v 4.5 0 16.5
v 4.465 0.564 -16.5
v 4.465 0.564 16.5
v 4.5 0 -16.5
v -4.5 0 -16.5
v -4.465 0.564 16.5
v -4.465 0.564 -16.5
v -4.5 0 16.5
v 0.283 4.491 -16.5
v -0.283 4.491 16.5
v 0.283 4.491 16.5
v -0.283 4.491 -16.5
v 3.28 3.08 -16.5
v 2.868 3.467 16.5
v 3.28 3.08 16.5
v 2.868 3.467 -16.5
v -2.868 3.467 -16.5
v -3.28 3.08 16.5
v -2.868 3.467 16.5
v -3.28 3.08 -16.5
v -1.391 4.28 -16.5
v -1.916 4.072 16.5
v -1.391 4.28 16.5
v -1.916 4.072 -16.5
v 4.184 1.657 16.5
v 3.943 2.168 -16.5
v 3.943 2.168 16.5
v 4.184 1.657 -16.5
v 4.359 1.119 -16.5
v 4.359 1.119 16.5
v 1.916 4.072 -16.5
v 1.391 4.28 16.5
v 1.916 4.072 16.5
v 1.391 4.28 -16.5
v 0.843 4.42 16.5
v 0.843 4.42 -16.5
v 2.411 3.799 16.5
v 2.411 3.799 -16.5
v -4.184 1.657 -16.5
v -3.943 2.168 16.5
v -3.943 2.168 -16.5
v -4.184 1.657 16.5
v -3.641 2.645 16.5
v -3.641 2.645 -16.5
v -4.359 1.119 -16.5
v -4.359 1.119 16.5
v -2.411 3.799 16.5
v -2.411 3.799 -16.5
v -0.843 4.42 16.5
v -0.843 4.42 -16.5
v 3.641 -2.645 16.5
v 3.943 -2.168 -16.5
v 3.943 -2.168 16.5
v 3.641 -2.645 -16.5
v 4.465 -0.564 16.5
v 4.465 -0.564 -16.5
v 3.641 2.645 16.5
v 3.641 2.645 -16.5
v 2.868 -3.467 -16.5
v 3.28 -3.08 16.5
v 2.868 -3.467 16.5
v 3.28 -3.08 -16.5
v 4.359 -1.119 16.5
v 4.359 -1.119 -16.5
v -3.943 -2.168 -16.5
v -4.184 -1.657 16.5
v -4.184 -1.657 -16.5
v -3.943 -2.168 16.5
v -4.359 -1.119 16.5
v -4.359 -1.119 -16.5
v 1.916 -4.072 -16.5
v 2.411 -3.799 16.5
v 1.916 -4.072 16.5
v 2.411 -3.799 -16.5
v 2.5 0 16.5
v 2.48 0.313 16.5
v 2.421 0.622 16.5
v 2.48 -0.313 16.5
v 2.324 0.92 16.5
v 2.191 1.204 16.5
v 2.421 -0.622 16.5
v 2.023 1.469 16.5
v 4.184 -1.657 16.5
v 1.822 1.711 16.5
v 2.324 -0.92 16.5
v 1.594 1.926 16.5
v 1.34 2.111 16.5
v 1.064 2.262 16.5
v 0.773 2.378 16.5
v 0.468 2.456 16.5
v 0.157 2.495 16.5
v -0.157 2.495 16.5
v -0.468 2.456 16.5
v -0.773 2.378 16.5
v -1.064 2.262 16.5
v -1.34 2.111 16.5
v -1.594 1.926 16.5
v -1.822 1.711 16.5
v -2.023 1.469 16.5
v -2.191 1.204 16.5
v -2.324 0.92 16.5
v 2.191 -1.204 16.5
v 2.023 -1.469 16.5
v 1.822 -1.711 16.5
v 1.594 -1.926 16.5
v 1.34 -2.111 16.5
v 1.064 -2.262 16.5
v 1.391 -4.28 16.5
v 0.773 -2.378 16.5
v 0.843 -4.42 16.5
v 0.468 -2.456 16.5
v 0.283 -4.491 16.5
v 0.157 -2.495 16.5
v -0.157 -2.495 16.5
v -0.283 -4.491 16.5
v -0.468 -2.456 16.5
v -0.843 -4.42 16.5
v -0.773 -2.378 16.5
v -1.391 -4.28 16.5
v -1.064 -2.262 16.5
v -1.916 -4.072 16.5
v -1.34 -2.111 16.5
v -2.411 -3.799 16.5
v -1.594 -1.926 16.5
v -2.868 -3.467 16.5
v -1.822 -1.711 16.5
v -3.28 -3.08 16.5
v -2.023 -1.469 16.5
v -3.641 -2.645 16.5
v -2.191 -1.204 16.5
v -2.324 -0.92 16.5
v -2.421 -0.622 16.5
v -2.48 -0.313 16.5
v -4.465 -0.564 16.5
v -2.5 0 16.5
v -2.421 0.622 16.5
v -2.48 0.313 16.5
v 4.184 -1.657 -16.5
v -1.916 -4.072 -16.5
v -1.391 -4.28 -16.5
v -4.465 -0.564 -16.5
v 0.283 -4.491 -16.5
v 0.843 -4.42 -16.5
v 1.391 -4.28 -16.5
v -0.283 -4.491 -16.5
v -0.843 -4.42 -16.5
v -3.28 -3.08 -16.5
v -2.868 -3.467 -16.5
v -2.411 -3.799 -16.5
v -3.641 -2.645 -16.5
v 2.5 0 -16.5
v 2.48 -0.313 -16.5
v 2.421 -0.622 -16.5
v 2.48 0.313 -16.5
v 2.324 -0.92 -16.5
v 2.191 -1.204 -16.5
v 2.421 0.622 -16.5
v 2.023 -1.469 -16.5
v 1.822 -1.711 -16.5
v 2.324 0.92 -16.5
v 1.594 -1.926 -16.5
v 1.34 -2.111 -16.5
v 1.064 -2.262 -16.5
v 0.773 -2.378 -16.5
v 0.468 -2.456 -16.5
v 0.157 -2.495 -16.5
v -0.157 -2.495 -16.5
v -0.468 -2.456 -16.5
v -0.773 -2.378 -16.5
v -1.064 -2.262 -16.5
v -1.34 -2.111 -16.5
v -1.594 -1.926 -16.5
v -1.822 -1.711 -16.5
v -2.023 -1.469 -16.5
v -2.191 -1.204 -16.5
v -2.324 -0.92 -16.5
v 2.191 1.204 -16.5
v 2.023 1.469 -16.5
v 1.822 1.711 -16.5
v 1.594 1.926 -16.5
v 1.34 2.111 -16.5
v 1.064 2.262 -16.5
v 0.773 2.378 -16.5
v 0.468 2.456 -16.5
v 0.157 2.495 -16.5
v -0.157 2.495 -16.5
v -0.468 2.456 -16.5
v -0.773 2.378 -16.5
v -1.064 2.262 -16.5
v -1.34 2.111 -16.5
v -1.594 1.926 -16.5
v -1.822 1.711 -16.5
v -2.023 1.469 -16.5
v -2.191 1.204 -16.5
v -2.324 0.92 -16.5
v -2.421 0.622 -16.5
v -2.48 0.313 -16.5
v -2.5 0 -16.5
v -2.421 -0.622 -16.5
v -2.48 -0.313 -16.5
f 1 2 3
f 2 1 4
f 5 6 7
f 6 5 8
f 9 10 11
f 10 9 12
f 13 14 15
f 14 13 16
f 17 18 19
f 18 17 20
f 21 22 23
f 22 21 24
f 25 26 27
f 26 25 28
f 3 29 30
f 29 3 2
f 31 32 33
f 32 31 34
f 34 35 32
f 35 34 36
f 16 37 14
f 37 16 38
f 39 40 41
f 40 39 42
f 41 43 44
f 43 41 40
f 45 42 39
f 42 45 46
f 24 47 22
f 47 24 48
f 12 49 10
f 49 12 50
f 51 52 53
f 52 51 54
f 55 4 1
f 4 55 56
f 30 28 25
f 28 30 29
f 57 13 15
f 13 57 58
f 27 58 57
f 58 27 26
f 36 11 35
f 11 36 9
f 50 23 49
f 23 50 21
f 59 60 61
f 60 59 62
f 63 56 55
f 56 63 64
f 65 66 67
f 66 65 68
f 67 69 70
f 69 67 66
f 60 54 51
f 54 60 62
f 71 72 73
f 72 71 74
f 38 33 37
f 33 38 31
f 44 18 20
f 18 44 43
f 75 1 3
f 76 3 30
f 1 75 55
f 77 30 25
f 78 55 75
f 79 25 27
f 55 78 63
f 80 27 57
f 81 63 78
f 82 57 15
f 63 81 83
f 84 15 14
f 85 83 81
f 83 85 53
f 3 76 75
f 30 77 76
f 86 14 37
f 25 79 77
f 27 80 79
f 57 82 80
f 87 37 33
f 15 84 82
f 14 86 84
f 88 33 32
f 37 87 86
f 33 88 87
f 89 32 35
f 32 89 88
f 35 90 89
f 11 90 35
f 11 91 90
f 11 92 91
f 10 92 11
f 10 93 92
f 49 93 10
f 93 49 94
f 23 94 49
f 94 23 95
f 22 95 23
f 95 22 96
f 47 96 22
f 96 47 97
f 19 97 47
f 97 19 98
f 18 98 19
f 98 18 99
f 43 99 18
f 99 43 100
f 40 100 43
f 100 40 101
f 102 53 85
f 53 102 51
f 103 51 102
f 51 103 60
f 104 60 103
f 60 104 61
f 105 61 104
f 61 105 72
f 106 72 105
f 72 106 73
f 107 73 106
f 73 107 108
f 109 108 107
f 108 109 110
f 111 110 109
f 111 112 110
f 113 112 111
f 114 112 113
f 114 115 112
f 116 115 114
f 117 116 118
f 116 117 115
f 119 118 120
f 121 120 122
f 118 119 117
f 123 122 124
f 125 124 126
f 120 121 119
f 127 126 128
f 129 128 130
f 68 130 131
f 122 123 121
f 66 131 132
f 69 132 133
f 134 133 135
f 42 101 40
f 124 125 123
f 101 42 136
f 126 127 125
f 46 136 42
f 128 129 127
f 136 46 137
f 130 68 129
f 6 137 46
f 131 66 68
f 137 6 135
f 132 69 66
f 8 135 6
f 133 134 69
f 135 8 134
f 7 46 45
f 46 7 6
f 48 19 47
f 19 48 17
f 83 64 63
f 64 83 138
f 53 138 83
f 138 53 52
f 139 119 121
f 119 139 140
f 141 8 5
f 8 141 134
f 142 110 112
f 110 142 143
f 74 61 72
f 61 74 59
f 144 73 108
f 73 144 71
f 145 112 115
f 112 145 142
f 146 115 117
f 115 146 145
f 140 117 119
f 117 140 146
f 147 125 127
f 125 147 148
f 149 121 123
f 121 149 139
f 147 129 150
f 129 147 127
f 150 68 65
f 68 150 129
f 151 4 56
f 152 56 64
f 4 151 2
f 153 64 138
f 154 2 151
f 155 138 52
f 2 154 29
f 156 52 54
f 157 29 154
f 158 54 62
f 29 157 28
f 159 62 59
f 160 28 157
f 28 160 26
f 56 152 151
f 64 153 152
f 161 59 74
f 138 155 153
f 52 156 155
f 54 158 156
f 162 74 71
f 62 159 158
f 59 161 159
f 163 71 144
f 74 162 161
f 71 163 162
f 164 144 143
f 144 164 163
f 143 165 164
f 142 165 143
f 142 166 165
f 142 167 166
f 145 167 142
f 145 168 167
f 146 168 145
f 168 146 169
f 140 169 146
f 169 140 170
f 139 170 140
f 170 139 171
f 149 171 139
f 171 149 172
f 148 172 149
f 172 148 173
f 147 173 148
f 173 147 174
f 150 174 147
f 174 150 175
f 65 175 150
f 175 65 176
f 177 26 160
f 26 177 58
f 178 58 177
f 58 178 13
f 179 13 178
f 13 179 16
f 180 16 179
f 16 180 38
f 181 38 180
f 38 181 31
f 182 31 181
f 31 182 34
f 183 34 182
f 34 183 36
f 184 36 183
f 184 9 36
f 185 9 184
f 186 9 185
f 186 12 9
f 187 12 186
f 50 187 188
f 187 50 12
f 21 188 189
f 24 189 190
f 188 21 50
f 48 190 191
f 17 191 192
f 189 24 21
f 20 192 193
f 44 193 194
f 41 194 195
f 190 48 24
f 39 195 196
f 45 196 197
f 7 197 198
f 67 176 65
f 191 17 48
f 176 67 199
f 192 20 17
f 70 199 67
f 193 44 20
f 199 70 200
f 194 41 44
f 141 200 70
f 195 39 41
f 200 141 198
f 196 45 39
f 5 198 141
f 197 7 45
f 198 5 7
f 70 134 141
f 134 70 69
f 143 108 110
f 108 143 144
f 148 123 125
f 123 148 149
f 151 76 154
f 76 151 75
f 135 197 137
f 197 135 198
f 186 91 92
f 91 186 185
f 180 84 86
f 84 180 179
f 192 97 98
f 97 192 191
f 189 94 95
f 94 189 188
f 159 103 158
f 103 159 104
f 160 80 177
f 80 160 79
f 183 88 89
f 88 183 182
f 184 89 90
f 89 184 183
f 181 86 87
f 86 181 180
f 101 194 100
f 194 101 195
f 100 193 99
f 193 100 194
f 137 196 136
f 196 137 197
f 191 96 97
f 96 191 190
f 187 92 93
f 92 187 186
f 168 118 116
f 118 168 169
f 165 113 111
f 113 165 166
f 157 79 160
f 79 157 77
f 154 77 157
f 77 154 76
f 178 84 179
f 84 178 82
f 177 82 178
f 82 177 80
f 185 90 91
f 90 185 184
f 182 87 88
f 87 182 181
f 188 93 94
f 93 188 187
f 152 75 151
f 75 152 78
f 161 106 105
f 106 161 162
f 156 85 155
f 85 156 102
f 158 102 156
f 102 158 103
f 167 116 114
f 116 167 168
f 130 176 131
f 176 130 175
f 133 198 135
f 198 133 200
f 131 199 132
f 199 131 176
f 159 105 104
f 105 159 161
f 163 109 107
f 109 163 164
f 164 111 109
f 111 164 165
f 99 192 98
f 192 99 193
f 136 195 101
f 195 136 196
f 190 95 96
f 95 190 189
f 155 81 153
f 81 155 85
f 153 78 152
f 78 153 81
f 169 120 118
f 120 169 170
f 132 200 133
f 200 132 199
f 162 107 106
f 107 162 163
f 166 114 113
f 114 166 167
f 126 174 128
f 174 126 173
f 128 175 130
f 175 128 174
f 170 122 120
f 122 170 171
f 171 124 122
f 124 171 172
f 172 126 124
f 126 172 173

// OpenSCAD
$fn = 50;


difference() {
	union() {
		translate(v = [0, 0, -16.5000000000]) {
			cylinder(h = 33, r = 4.5000000000);
		}
	}
	union() {
		translate(v = [0, 0, -100.0000000000]) {
			cylinder(h = 200, r = 2.5000000000);
		}
	}
}
